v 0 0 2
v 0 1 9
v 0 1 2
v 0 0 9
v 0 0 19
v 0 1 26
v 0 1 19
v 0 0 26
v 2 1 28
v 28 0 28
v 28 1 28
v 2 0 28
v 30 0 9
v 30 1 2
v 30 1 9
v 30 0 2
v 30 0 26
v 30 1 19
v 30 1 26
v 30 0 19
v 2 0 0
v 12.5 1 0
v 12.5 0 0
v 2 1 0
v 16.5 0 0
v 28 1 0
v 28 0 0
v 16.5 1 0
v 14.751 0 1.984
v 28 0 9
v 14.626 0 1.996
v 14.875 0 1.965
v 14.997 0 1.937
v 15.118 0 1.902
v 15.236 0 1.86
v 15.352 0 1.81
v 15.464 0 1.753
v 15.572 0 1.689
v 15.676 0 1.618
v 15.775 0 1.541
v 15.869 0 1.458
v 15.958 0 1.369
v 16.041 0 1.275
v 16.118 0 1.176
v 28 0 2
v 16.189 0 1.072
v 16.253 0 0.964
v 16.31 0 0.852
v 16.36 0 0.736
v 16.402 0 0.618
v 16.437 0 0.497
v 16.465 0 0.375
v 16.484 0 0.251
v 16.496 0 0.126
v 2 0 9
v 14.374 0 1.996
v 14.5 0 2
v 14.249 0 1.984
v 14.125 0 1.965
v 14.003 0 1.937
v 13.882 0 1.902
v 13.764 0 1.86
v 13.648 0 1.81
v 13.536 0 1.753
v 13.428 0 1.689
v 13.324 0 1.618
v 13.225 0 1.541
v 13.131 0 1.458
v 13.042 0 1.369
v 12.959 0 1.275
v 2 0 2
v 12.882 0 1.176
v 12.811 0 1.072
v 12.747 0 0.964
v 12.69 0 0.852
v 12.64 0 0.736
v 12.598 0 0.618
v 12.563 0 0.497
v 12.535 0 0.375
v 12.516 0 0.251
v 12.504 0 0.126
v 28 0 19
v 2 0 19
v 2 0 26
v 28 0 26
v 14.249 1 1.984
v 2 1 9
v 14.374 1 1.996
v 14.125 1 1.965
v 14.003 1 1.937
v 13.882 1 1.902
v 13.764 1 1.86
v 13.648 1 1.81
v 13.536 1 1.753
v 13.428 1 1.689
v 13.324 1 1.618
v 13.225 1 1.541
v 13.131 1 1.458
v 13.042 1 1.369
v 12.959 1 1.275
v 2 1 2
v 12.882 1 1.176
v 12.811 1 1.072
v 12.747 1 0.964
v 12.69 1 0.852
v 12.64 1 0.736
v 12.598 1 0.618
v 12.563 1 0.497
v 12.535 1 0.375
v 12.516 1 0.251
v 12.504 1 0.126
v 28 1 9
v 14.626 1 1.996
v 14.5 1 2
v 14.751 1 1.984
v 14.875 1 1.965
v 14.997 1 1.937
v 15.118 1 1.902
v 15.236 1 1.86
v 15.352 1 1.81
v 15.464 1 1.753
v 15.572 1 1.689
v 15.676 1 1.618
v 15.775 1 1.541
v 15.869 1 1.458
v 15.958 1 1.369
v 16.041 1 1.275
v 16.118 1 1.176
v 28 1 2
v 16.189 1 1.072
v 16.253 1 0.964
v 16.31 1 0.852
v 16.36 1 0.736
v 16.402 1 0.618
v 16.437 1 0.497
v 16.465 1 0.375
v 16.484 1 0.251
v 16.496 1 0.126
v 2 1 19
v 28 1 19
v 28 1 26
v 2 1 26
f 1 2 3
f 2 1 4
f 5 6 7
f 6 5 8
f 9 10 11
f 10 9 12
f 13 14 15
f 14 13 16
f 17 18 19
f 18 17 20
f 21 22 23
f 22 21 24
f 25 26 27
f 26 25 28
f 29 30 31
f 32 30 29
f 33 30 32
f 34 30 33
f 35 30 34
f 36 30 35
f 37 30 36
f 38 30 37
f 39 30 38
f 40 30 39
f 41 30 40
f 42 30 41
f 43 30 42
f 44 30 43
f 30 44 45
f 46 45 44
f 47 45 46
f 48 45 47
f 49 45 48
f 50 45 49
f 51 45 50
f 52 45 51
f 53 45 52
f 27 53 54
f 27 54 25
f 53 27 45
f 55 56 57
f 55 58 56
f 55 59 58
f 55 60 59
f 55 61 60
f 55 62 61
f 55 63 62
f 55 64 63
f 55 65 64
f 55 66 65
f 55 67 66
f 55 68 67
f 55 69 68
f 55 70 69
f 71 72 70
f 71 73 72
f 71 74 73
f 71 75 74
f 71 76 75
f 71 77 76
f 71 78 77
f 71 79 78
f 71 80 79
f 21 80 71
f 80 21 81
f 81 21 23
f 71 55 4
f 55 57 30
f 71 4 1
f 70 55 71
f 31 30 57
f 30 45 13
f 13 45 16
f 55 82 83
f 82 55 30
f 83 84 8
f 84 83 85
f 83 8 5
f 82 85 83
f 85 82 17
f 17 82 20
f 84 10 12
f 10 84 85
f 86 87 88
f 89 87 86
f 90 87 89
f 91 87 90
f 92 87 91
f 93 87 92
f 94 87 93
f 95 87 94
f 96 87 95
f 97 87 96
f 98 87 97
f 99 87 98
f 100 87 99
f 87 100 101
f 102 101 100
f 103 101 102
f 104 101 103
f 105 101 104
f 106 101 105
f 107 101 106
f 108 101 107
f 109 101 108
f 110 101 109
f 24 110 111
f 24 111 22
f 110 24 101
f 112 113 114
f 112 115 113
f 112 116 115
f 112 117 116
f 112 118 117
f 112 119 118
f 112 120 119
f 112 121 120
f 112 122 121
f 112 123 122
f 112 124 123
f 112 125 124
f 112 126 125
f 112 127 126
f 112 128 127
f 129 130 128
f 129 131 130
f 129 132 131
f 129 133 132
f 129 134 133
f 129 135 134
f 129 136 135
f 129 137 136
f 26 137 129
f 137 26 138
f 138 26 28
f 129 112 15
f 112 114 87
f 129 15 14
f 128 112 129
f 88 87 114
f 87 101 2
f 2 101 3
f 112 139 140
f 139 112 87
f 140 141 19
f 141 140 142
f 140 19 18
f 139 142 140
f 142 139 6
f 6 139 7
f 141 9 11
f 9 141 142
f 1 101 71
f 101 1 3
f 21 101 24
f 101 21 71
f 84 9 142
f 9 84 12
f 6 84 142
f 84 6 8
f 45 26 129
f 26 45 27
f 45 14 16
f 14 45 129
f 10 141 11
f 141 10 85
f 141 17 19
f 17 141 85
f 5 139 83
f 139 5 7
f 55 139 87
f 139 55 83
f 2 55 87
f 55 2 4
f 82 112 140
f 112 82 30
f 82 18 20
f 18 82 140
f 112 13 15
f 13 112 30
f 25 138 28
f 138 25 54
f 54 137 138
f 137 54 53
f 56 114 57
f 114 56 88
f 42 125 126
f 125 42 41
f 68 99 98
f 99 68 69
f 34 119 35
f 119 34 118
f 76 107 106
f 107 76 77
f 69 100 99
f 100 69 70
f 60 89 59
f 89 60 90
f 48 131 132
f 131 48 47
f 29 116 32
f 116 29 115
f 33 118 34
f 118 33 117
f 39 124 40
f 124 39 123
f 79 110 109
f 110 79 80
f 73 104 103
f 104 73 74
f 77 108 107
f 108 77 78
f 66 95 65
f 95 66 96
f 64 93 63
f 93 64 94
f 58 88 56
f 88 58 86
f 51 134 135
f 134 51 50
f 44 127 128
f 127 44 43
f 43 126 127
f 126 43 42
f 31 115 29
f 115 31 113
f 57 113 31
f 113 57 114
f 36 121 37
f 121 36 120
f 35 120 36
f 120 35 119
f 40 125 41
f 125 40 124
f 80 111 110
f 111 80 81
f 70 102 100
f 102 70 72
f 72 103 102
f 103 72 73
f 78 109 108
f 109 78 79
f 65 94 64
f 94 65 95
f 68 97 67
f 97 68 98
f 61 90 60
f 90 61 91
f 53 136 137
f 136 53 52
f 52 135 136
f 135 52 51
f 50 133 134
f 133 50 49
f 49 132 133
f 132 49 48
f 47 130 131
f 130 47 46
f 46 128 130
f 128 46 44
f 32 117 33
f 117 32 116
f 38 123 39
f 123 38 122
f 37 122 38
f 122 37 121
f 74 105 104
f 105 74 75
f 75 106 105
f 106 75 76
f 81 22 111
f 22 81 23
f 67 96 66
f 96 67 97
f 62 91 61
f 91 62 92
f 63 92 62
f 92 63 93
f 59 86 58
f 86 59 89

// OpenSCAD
difference()
{
color("red")translate([0,0,0])cube([30,1,28]);

//Corners
color("green")translate([-1,-1,-1])cube(3);
color("green")translate([-1,-1,26])cube(3);

color("green")translate([28,-1,-1])cube(3);
color("green")translate([28,-1,26])cube(3);

//Middle Sections
color("blue")translate([-1,-1,9])cube([3,3,10]);

color("blue")translate([28,-1,9])cube([3,3,10]);

//Bottom Hoopla
    color("white")translate([14.5,2,0])rotate([90,0,0])cylinder(5,2,2, $fn=100);
}
